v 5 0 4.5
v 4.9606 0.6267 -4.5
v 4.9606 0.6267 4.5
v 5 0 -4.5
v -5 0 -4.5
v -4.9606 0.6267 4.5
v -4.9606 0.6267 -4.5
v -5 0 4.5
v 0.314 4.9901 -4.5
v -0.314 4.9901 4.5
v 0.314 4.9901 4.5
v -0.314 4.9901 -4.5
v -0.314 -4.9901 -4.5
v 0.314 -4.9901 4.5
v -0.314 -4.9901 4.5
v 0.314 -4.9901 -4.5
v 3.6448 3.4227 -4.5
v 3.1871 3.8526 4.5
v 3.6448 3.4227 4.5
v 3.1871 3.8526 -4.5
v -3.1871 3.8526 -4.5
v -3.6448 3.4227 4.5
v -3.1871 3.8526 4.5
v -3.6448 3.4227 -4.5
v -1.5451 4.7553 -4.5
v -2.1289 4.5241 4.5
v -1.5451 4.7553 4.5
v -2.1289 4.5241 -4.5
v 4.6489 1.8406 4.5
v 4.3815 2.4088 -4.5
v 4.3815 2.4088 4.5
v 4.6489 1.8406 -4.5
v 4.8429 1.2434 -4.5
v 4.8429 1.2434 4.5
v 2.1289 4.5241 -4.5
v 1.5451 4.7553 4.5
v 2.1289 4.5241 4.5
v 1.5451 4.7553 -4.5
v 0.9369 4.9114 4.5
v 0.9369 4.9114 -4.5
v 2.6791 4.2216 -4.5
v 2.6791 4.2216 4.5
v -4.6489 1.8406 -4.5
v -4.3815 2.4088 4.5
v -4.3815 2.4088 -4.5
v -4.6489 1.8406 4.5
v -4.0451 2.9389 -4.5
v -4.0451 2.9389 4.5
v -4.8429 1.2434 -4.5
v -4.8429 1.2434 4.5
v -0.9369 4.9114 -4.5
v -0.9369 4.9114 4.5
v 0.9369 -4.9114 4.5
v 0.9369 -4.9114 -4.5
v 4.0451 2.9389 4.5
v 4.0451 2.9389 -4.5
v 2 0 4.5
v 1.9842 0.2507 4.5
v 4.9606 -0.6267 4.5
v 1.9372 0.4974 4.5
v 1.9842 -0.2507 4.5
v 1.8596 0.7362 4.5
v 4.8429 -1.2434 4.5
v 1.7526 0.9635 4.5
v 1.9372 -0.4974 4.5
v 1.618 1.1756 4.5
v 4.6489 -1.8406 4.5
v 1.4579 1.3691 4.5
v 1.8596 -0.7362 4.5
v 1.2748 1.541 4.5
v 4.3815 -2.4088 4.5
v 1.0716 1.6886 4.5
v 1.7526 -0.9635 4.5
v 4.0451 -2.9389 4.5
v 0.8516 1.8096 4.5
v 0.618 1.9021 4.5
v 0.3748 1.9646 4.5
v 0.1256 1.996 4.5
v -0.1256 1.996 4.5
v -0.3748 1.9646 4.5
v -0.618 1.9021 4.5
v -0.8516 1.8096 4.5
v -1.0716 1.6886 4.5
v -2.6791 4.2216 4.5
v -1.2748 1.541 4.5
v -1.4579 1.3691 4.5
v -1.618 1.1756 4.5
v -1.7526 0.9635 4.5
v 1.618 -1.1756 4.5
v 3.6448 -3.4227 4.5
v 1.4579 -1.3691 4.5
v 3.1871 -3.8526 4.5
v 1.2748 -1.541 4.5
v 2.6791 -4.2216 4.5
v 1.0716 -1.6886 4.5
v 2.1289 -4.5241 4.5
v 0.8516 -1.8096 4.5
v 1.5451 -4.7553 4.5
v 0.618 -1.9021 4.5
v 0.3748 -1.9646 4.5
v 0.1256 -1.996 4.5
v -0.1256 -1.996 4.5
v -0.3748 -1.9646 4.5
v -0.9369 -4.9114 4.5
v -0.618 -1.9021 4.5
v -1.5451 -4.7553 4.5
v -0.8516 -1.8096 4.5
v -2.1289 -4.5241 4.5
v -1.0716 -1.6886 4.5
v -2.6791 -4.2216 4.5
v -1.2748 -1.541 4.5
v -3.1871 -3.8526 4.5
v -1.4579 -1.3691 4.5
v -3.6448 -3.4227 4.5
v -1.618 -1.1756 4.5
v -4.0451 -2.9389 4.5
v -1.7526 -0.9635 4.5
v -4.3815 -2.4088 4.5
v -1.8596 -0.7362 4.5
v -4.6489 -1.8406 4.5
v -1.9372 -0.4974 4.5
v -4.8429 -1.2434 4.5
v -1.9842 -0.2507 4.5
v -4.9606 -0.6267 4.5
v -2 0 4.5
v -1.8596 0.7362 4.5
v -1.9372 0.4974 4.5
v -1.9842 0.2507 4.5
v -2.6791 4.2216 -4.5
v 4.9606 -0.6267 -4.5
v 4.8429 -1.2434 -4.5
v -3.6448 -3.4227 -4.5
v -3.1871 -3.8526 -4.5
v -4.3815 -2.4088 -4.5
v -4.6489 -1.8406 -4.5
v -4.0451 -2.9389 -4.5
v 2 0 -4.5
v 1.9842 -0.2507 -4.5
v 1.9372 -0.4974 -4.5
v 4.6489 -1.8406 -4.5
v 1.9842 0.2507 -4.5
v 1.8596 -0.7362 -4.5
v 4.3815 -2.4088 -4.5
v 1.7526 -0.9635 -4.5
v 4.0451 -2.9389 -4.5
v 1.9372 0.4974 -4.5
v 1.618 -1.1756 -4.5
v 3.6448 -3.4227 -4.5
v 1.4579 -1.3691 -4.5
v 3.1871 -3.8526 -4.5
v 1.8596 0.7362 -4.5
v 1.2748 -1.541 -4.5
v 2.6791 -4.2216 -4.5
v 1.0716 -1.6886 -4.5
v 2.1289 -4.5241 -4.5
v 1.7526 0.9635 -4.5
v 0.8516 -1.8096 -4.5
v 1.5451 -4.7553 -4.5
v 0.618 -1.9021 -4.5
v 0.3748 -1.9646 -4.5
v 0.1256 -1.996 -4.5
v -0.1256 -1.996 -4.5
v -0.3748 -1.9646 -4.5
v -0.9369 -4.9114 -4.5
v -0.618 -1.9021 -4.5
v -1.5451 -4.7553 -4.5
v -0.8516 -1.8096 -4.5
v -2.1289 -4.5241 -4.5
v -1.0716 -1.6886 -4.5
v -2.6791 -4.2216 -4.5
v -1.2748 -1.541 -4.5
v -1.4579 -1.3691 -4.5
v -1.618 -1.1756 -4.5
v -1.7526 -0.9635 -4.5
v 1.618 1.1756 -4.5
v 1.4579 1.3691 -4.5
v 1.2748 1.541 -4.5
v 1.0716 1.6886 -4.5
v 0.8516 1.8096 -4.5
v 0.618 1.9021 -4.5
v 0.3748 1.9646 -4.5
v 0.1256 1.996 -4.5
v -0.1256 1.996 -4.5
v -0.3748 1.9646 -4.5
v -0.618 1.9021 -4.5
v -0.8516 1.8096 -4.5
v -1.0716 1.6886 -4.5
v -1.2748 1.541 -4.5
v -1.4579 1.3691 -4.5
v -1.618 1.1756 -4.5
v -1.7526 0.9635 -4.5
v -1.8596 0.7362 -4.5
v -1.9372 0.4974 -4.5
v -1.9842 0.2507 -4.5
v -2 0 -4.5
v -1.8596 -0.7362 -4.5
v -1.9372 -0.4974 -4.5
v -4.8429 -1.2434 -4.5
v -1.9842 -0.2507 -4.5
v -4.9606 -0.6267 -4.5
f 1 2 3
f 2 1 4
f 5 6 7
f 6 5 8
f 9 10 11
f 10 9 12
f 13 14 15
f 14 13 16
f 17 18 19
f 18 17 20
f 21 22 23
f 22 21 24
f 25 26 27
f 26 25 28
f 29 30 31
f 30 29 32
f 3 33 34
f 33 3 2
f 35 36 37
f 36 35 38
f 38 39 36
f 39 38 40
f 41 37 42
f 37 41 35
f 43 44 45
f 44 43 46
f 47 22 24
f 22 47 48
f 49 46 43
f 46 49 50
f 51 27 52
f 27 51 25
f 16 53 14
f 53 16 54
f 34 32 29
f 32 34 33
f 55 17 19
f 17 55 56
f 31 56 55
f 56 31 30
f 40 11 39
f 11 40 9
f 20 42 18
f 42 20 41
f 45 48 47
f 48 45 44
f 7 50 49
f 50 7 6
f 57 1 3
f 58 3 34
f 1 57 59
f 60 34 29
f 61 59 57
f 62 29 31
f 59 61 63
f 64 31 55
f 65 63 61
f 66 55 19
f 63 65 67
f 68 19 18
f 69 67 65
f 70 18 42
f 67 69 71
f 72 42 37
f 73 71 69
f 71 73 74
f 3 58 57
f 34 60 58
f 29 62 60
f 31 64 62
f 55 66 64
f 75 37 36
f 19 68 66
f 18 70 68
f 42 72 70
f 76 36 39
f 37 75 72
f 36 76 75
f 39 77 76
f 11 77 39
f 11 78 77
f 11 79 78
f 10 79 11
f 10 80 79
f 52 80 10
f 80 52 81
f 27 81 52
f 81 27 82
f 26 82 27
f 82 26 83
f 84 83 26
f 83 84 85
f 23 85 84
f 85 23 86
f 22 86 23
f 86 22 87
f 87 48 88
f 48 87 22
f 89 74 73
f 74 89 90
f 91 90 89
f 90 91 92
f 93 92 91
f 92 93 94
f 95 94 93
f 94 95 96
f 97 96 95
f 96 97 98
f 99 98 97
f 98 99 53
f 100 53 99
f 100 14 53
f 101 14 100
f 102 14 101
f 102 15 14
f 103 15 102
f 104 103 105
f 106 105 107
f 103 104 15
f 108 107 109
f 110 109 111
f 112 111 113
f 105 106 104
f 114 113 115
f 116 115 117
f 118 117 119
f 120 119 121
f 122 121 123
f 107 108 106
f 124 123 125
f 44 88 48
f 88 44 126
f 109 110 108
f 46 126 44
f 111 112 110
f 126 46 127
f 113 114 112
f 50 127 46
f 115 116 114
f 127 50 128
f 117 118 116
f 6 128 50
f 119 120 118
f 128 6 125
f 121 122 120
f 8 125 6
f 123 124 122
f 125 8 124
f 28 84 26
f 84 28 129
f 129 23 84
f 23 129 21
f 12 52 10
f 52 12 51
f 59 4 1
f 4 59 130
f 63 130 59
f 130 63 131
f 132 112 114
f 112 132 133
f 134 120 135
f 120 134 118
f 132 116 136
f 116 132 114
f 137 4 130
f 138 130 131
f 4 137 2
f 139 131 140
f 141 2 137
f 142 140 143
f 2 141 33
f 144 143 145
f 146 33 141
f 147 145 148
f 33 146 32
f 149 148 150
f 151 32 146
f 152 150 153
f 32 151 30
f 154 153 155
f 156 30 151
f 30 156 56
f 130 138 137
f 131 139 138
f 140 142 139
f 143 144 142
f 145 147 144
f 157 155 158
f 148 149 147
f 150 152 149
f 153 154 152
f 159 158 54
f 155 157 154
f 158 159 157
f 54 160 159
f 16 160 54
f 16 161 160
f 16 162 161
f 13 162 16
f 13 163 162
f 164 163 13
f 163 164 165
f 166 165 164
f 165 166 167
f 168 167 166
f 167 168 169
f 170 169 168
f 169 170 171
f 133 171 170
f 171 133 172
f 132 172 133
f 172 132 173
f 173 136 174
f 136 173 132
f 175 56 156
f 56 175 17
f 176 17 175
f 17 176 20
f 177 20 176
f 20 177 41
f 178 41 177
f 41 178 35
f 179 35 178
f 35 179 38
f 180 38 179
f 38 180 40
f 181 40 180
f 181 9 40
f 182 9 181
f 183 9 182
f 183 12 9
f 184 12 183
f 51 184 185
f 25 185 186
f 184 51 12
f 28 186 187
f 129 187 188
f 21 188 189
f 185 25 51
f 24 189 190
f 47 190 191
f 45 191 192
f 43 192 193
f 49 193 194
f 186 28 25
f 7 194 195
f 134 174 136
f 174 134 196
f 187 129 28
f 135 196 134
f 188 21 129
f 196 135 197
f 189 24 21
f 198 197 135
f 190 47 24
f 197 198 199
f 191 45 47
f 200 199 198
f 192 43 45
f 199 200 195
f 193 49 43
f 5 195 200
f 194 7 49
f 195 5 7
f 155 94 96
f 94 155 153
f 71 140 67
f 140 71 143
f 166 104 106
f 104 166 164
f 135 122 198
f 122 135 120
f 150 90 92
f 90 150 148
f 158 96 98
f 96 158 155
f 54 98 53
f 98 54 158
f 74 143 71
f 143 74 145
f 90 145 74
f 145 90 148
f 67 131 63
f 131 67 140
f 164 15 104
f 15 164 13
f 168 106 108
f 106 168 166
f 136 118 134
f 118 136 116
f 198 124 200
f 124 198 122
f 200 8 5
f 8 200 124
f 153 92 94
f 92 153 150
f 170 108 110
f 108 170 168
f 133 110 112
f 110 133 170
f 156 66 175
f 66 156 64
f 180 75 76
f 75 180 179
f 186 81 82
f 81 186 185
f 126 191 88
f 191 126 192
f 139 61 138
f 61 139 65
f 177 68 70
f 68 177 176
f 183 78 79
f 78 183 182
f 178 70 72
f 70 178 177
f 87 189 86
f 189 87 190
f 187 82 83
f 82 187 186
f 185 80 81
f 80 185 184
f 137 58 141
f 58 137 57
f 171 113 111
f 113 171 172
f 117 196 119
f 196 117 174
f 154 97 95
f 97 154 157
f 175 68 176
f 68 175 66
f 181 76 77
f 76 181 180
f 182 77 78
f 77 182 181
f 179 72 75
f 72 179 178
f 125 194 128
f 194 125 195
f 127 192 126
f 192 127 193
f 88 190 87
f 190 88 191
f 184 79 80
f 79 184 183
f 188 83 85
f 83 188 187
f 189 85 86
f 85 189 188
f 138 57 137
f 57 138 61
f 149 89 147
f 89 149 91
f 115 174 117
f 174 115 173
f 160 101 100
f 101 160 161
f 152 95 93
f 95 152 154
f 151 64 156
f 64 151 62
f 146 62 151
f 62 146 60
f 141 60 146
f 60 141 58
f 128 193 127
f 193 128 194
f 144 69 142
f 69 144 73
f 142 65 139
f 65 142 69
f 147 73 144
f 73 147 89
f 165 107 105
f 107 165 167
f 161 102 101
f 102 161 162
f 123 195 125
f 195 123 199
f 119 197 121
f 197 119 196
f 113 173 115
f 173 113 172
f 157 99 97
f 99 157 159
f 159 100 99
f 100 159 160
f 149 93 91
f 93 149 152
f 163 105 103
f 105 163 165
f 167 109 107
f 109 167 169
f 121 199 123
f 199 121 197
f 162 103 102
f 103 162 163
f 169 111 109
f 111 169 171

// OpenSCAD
$fn = 50;


difference() {
	union() {
		translate(v = [0, 0, -4.5000000000]) {
			cylinder(h = 9, r = 5.0000000000);
		}
	}
	union() {
		translate(v = [0, 0, -100.0000000000]) {
			cylinder(h = 200, r = 2);
		}
	}
}
